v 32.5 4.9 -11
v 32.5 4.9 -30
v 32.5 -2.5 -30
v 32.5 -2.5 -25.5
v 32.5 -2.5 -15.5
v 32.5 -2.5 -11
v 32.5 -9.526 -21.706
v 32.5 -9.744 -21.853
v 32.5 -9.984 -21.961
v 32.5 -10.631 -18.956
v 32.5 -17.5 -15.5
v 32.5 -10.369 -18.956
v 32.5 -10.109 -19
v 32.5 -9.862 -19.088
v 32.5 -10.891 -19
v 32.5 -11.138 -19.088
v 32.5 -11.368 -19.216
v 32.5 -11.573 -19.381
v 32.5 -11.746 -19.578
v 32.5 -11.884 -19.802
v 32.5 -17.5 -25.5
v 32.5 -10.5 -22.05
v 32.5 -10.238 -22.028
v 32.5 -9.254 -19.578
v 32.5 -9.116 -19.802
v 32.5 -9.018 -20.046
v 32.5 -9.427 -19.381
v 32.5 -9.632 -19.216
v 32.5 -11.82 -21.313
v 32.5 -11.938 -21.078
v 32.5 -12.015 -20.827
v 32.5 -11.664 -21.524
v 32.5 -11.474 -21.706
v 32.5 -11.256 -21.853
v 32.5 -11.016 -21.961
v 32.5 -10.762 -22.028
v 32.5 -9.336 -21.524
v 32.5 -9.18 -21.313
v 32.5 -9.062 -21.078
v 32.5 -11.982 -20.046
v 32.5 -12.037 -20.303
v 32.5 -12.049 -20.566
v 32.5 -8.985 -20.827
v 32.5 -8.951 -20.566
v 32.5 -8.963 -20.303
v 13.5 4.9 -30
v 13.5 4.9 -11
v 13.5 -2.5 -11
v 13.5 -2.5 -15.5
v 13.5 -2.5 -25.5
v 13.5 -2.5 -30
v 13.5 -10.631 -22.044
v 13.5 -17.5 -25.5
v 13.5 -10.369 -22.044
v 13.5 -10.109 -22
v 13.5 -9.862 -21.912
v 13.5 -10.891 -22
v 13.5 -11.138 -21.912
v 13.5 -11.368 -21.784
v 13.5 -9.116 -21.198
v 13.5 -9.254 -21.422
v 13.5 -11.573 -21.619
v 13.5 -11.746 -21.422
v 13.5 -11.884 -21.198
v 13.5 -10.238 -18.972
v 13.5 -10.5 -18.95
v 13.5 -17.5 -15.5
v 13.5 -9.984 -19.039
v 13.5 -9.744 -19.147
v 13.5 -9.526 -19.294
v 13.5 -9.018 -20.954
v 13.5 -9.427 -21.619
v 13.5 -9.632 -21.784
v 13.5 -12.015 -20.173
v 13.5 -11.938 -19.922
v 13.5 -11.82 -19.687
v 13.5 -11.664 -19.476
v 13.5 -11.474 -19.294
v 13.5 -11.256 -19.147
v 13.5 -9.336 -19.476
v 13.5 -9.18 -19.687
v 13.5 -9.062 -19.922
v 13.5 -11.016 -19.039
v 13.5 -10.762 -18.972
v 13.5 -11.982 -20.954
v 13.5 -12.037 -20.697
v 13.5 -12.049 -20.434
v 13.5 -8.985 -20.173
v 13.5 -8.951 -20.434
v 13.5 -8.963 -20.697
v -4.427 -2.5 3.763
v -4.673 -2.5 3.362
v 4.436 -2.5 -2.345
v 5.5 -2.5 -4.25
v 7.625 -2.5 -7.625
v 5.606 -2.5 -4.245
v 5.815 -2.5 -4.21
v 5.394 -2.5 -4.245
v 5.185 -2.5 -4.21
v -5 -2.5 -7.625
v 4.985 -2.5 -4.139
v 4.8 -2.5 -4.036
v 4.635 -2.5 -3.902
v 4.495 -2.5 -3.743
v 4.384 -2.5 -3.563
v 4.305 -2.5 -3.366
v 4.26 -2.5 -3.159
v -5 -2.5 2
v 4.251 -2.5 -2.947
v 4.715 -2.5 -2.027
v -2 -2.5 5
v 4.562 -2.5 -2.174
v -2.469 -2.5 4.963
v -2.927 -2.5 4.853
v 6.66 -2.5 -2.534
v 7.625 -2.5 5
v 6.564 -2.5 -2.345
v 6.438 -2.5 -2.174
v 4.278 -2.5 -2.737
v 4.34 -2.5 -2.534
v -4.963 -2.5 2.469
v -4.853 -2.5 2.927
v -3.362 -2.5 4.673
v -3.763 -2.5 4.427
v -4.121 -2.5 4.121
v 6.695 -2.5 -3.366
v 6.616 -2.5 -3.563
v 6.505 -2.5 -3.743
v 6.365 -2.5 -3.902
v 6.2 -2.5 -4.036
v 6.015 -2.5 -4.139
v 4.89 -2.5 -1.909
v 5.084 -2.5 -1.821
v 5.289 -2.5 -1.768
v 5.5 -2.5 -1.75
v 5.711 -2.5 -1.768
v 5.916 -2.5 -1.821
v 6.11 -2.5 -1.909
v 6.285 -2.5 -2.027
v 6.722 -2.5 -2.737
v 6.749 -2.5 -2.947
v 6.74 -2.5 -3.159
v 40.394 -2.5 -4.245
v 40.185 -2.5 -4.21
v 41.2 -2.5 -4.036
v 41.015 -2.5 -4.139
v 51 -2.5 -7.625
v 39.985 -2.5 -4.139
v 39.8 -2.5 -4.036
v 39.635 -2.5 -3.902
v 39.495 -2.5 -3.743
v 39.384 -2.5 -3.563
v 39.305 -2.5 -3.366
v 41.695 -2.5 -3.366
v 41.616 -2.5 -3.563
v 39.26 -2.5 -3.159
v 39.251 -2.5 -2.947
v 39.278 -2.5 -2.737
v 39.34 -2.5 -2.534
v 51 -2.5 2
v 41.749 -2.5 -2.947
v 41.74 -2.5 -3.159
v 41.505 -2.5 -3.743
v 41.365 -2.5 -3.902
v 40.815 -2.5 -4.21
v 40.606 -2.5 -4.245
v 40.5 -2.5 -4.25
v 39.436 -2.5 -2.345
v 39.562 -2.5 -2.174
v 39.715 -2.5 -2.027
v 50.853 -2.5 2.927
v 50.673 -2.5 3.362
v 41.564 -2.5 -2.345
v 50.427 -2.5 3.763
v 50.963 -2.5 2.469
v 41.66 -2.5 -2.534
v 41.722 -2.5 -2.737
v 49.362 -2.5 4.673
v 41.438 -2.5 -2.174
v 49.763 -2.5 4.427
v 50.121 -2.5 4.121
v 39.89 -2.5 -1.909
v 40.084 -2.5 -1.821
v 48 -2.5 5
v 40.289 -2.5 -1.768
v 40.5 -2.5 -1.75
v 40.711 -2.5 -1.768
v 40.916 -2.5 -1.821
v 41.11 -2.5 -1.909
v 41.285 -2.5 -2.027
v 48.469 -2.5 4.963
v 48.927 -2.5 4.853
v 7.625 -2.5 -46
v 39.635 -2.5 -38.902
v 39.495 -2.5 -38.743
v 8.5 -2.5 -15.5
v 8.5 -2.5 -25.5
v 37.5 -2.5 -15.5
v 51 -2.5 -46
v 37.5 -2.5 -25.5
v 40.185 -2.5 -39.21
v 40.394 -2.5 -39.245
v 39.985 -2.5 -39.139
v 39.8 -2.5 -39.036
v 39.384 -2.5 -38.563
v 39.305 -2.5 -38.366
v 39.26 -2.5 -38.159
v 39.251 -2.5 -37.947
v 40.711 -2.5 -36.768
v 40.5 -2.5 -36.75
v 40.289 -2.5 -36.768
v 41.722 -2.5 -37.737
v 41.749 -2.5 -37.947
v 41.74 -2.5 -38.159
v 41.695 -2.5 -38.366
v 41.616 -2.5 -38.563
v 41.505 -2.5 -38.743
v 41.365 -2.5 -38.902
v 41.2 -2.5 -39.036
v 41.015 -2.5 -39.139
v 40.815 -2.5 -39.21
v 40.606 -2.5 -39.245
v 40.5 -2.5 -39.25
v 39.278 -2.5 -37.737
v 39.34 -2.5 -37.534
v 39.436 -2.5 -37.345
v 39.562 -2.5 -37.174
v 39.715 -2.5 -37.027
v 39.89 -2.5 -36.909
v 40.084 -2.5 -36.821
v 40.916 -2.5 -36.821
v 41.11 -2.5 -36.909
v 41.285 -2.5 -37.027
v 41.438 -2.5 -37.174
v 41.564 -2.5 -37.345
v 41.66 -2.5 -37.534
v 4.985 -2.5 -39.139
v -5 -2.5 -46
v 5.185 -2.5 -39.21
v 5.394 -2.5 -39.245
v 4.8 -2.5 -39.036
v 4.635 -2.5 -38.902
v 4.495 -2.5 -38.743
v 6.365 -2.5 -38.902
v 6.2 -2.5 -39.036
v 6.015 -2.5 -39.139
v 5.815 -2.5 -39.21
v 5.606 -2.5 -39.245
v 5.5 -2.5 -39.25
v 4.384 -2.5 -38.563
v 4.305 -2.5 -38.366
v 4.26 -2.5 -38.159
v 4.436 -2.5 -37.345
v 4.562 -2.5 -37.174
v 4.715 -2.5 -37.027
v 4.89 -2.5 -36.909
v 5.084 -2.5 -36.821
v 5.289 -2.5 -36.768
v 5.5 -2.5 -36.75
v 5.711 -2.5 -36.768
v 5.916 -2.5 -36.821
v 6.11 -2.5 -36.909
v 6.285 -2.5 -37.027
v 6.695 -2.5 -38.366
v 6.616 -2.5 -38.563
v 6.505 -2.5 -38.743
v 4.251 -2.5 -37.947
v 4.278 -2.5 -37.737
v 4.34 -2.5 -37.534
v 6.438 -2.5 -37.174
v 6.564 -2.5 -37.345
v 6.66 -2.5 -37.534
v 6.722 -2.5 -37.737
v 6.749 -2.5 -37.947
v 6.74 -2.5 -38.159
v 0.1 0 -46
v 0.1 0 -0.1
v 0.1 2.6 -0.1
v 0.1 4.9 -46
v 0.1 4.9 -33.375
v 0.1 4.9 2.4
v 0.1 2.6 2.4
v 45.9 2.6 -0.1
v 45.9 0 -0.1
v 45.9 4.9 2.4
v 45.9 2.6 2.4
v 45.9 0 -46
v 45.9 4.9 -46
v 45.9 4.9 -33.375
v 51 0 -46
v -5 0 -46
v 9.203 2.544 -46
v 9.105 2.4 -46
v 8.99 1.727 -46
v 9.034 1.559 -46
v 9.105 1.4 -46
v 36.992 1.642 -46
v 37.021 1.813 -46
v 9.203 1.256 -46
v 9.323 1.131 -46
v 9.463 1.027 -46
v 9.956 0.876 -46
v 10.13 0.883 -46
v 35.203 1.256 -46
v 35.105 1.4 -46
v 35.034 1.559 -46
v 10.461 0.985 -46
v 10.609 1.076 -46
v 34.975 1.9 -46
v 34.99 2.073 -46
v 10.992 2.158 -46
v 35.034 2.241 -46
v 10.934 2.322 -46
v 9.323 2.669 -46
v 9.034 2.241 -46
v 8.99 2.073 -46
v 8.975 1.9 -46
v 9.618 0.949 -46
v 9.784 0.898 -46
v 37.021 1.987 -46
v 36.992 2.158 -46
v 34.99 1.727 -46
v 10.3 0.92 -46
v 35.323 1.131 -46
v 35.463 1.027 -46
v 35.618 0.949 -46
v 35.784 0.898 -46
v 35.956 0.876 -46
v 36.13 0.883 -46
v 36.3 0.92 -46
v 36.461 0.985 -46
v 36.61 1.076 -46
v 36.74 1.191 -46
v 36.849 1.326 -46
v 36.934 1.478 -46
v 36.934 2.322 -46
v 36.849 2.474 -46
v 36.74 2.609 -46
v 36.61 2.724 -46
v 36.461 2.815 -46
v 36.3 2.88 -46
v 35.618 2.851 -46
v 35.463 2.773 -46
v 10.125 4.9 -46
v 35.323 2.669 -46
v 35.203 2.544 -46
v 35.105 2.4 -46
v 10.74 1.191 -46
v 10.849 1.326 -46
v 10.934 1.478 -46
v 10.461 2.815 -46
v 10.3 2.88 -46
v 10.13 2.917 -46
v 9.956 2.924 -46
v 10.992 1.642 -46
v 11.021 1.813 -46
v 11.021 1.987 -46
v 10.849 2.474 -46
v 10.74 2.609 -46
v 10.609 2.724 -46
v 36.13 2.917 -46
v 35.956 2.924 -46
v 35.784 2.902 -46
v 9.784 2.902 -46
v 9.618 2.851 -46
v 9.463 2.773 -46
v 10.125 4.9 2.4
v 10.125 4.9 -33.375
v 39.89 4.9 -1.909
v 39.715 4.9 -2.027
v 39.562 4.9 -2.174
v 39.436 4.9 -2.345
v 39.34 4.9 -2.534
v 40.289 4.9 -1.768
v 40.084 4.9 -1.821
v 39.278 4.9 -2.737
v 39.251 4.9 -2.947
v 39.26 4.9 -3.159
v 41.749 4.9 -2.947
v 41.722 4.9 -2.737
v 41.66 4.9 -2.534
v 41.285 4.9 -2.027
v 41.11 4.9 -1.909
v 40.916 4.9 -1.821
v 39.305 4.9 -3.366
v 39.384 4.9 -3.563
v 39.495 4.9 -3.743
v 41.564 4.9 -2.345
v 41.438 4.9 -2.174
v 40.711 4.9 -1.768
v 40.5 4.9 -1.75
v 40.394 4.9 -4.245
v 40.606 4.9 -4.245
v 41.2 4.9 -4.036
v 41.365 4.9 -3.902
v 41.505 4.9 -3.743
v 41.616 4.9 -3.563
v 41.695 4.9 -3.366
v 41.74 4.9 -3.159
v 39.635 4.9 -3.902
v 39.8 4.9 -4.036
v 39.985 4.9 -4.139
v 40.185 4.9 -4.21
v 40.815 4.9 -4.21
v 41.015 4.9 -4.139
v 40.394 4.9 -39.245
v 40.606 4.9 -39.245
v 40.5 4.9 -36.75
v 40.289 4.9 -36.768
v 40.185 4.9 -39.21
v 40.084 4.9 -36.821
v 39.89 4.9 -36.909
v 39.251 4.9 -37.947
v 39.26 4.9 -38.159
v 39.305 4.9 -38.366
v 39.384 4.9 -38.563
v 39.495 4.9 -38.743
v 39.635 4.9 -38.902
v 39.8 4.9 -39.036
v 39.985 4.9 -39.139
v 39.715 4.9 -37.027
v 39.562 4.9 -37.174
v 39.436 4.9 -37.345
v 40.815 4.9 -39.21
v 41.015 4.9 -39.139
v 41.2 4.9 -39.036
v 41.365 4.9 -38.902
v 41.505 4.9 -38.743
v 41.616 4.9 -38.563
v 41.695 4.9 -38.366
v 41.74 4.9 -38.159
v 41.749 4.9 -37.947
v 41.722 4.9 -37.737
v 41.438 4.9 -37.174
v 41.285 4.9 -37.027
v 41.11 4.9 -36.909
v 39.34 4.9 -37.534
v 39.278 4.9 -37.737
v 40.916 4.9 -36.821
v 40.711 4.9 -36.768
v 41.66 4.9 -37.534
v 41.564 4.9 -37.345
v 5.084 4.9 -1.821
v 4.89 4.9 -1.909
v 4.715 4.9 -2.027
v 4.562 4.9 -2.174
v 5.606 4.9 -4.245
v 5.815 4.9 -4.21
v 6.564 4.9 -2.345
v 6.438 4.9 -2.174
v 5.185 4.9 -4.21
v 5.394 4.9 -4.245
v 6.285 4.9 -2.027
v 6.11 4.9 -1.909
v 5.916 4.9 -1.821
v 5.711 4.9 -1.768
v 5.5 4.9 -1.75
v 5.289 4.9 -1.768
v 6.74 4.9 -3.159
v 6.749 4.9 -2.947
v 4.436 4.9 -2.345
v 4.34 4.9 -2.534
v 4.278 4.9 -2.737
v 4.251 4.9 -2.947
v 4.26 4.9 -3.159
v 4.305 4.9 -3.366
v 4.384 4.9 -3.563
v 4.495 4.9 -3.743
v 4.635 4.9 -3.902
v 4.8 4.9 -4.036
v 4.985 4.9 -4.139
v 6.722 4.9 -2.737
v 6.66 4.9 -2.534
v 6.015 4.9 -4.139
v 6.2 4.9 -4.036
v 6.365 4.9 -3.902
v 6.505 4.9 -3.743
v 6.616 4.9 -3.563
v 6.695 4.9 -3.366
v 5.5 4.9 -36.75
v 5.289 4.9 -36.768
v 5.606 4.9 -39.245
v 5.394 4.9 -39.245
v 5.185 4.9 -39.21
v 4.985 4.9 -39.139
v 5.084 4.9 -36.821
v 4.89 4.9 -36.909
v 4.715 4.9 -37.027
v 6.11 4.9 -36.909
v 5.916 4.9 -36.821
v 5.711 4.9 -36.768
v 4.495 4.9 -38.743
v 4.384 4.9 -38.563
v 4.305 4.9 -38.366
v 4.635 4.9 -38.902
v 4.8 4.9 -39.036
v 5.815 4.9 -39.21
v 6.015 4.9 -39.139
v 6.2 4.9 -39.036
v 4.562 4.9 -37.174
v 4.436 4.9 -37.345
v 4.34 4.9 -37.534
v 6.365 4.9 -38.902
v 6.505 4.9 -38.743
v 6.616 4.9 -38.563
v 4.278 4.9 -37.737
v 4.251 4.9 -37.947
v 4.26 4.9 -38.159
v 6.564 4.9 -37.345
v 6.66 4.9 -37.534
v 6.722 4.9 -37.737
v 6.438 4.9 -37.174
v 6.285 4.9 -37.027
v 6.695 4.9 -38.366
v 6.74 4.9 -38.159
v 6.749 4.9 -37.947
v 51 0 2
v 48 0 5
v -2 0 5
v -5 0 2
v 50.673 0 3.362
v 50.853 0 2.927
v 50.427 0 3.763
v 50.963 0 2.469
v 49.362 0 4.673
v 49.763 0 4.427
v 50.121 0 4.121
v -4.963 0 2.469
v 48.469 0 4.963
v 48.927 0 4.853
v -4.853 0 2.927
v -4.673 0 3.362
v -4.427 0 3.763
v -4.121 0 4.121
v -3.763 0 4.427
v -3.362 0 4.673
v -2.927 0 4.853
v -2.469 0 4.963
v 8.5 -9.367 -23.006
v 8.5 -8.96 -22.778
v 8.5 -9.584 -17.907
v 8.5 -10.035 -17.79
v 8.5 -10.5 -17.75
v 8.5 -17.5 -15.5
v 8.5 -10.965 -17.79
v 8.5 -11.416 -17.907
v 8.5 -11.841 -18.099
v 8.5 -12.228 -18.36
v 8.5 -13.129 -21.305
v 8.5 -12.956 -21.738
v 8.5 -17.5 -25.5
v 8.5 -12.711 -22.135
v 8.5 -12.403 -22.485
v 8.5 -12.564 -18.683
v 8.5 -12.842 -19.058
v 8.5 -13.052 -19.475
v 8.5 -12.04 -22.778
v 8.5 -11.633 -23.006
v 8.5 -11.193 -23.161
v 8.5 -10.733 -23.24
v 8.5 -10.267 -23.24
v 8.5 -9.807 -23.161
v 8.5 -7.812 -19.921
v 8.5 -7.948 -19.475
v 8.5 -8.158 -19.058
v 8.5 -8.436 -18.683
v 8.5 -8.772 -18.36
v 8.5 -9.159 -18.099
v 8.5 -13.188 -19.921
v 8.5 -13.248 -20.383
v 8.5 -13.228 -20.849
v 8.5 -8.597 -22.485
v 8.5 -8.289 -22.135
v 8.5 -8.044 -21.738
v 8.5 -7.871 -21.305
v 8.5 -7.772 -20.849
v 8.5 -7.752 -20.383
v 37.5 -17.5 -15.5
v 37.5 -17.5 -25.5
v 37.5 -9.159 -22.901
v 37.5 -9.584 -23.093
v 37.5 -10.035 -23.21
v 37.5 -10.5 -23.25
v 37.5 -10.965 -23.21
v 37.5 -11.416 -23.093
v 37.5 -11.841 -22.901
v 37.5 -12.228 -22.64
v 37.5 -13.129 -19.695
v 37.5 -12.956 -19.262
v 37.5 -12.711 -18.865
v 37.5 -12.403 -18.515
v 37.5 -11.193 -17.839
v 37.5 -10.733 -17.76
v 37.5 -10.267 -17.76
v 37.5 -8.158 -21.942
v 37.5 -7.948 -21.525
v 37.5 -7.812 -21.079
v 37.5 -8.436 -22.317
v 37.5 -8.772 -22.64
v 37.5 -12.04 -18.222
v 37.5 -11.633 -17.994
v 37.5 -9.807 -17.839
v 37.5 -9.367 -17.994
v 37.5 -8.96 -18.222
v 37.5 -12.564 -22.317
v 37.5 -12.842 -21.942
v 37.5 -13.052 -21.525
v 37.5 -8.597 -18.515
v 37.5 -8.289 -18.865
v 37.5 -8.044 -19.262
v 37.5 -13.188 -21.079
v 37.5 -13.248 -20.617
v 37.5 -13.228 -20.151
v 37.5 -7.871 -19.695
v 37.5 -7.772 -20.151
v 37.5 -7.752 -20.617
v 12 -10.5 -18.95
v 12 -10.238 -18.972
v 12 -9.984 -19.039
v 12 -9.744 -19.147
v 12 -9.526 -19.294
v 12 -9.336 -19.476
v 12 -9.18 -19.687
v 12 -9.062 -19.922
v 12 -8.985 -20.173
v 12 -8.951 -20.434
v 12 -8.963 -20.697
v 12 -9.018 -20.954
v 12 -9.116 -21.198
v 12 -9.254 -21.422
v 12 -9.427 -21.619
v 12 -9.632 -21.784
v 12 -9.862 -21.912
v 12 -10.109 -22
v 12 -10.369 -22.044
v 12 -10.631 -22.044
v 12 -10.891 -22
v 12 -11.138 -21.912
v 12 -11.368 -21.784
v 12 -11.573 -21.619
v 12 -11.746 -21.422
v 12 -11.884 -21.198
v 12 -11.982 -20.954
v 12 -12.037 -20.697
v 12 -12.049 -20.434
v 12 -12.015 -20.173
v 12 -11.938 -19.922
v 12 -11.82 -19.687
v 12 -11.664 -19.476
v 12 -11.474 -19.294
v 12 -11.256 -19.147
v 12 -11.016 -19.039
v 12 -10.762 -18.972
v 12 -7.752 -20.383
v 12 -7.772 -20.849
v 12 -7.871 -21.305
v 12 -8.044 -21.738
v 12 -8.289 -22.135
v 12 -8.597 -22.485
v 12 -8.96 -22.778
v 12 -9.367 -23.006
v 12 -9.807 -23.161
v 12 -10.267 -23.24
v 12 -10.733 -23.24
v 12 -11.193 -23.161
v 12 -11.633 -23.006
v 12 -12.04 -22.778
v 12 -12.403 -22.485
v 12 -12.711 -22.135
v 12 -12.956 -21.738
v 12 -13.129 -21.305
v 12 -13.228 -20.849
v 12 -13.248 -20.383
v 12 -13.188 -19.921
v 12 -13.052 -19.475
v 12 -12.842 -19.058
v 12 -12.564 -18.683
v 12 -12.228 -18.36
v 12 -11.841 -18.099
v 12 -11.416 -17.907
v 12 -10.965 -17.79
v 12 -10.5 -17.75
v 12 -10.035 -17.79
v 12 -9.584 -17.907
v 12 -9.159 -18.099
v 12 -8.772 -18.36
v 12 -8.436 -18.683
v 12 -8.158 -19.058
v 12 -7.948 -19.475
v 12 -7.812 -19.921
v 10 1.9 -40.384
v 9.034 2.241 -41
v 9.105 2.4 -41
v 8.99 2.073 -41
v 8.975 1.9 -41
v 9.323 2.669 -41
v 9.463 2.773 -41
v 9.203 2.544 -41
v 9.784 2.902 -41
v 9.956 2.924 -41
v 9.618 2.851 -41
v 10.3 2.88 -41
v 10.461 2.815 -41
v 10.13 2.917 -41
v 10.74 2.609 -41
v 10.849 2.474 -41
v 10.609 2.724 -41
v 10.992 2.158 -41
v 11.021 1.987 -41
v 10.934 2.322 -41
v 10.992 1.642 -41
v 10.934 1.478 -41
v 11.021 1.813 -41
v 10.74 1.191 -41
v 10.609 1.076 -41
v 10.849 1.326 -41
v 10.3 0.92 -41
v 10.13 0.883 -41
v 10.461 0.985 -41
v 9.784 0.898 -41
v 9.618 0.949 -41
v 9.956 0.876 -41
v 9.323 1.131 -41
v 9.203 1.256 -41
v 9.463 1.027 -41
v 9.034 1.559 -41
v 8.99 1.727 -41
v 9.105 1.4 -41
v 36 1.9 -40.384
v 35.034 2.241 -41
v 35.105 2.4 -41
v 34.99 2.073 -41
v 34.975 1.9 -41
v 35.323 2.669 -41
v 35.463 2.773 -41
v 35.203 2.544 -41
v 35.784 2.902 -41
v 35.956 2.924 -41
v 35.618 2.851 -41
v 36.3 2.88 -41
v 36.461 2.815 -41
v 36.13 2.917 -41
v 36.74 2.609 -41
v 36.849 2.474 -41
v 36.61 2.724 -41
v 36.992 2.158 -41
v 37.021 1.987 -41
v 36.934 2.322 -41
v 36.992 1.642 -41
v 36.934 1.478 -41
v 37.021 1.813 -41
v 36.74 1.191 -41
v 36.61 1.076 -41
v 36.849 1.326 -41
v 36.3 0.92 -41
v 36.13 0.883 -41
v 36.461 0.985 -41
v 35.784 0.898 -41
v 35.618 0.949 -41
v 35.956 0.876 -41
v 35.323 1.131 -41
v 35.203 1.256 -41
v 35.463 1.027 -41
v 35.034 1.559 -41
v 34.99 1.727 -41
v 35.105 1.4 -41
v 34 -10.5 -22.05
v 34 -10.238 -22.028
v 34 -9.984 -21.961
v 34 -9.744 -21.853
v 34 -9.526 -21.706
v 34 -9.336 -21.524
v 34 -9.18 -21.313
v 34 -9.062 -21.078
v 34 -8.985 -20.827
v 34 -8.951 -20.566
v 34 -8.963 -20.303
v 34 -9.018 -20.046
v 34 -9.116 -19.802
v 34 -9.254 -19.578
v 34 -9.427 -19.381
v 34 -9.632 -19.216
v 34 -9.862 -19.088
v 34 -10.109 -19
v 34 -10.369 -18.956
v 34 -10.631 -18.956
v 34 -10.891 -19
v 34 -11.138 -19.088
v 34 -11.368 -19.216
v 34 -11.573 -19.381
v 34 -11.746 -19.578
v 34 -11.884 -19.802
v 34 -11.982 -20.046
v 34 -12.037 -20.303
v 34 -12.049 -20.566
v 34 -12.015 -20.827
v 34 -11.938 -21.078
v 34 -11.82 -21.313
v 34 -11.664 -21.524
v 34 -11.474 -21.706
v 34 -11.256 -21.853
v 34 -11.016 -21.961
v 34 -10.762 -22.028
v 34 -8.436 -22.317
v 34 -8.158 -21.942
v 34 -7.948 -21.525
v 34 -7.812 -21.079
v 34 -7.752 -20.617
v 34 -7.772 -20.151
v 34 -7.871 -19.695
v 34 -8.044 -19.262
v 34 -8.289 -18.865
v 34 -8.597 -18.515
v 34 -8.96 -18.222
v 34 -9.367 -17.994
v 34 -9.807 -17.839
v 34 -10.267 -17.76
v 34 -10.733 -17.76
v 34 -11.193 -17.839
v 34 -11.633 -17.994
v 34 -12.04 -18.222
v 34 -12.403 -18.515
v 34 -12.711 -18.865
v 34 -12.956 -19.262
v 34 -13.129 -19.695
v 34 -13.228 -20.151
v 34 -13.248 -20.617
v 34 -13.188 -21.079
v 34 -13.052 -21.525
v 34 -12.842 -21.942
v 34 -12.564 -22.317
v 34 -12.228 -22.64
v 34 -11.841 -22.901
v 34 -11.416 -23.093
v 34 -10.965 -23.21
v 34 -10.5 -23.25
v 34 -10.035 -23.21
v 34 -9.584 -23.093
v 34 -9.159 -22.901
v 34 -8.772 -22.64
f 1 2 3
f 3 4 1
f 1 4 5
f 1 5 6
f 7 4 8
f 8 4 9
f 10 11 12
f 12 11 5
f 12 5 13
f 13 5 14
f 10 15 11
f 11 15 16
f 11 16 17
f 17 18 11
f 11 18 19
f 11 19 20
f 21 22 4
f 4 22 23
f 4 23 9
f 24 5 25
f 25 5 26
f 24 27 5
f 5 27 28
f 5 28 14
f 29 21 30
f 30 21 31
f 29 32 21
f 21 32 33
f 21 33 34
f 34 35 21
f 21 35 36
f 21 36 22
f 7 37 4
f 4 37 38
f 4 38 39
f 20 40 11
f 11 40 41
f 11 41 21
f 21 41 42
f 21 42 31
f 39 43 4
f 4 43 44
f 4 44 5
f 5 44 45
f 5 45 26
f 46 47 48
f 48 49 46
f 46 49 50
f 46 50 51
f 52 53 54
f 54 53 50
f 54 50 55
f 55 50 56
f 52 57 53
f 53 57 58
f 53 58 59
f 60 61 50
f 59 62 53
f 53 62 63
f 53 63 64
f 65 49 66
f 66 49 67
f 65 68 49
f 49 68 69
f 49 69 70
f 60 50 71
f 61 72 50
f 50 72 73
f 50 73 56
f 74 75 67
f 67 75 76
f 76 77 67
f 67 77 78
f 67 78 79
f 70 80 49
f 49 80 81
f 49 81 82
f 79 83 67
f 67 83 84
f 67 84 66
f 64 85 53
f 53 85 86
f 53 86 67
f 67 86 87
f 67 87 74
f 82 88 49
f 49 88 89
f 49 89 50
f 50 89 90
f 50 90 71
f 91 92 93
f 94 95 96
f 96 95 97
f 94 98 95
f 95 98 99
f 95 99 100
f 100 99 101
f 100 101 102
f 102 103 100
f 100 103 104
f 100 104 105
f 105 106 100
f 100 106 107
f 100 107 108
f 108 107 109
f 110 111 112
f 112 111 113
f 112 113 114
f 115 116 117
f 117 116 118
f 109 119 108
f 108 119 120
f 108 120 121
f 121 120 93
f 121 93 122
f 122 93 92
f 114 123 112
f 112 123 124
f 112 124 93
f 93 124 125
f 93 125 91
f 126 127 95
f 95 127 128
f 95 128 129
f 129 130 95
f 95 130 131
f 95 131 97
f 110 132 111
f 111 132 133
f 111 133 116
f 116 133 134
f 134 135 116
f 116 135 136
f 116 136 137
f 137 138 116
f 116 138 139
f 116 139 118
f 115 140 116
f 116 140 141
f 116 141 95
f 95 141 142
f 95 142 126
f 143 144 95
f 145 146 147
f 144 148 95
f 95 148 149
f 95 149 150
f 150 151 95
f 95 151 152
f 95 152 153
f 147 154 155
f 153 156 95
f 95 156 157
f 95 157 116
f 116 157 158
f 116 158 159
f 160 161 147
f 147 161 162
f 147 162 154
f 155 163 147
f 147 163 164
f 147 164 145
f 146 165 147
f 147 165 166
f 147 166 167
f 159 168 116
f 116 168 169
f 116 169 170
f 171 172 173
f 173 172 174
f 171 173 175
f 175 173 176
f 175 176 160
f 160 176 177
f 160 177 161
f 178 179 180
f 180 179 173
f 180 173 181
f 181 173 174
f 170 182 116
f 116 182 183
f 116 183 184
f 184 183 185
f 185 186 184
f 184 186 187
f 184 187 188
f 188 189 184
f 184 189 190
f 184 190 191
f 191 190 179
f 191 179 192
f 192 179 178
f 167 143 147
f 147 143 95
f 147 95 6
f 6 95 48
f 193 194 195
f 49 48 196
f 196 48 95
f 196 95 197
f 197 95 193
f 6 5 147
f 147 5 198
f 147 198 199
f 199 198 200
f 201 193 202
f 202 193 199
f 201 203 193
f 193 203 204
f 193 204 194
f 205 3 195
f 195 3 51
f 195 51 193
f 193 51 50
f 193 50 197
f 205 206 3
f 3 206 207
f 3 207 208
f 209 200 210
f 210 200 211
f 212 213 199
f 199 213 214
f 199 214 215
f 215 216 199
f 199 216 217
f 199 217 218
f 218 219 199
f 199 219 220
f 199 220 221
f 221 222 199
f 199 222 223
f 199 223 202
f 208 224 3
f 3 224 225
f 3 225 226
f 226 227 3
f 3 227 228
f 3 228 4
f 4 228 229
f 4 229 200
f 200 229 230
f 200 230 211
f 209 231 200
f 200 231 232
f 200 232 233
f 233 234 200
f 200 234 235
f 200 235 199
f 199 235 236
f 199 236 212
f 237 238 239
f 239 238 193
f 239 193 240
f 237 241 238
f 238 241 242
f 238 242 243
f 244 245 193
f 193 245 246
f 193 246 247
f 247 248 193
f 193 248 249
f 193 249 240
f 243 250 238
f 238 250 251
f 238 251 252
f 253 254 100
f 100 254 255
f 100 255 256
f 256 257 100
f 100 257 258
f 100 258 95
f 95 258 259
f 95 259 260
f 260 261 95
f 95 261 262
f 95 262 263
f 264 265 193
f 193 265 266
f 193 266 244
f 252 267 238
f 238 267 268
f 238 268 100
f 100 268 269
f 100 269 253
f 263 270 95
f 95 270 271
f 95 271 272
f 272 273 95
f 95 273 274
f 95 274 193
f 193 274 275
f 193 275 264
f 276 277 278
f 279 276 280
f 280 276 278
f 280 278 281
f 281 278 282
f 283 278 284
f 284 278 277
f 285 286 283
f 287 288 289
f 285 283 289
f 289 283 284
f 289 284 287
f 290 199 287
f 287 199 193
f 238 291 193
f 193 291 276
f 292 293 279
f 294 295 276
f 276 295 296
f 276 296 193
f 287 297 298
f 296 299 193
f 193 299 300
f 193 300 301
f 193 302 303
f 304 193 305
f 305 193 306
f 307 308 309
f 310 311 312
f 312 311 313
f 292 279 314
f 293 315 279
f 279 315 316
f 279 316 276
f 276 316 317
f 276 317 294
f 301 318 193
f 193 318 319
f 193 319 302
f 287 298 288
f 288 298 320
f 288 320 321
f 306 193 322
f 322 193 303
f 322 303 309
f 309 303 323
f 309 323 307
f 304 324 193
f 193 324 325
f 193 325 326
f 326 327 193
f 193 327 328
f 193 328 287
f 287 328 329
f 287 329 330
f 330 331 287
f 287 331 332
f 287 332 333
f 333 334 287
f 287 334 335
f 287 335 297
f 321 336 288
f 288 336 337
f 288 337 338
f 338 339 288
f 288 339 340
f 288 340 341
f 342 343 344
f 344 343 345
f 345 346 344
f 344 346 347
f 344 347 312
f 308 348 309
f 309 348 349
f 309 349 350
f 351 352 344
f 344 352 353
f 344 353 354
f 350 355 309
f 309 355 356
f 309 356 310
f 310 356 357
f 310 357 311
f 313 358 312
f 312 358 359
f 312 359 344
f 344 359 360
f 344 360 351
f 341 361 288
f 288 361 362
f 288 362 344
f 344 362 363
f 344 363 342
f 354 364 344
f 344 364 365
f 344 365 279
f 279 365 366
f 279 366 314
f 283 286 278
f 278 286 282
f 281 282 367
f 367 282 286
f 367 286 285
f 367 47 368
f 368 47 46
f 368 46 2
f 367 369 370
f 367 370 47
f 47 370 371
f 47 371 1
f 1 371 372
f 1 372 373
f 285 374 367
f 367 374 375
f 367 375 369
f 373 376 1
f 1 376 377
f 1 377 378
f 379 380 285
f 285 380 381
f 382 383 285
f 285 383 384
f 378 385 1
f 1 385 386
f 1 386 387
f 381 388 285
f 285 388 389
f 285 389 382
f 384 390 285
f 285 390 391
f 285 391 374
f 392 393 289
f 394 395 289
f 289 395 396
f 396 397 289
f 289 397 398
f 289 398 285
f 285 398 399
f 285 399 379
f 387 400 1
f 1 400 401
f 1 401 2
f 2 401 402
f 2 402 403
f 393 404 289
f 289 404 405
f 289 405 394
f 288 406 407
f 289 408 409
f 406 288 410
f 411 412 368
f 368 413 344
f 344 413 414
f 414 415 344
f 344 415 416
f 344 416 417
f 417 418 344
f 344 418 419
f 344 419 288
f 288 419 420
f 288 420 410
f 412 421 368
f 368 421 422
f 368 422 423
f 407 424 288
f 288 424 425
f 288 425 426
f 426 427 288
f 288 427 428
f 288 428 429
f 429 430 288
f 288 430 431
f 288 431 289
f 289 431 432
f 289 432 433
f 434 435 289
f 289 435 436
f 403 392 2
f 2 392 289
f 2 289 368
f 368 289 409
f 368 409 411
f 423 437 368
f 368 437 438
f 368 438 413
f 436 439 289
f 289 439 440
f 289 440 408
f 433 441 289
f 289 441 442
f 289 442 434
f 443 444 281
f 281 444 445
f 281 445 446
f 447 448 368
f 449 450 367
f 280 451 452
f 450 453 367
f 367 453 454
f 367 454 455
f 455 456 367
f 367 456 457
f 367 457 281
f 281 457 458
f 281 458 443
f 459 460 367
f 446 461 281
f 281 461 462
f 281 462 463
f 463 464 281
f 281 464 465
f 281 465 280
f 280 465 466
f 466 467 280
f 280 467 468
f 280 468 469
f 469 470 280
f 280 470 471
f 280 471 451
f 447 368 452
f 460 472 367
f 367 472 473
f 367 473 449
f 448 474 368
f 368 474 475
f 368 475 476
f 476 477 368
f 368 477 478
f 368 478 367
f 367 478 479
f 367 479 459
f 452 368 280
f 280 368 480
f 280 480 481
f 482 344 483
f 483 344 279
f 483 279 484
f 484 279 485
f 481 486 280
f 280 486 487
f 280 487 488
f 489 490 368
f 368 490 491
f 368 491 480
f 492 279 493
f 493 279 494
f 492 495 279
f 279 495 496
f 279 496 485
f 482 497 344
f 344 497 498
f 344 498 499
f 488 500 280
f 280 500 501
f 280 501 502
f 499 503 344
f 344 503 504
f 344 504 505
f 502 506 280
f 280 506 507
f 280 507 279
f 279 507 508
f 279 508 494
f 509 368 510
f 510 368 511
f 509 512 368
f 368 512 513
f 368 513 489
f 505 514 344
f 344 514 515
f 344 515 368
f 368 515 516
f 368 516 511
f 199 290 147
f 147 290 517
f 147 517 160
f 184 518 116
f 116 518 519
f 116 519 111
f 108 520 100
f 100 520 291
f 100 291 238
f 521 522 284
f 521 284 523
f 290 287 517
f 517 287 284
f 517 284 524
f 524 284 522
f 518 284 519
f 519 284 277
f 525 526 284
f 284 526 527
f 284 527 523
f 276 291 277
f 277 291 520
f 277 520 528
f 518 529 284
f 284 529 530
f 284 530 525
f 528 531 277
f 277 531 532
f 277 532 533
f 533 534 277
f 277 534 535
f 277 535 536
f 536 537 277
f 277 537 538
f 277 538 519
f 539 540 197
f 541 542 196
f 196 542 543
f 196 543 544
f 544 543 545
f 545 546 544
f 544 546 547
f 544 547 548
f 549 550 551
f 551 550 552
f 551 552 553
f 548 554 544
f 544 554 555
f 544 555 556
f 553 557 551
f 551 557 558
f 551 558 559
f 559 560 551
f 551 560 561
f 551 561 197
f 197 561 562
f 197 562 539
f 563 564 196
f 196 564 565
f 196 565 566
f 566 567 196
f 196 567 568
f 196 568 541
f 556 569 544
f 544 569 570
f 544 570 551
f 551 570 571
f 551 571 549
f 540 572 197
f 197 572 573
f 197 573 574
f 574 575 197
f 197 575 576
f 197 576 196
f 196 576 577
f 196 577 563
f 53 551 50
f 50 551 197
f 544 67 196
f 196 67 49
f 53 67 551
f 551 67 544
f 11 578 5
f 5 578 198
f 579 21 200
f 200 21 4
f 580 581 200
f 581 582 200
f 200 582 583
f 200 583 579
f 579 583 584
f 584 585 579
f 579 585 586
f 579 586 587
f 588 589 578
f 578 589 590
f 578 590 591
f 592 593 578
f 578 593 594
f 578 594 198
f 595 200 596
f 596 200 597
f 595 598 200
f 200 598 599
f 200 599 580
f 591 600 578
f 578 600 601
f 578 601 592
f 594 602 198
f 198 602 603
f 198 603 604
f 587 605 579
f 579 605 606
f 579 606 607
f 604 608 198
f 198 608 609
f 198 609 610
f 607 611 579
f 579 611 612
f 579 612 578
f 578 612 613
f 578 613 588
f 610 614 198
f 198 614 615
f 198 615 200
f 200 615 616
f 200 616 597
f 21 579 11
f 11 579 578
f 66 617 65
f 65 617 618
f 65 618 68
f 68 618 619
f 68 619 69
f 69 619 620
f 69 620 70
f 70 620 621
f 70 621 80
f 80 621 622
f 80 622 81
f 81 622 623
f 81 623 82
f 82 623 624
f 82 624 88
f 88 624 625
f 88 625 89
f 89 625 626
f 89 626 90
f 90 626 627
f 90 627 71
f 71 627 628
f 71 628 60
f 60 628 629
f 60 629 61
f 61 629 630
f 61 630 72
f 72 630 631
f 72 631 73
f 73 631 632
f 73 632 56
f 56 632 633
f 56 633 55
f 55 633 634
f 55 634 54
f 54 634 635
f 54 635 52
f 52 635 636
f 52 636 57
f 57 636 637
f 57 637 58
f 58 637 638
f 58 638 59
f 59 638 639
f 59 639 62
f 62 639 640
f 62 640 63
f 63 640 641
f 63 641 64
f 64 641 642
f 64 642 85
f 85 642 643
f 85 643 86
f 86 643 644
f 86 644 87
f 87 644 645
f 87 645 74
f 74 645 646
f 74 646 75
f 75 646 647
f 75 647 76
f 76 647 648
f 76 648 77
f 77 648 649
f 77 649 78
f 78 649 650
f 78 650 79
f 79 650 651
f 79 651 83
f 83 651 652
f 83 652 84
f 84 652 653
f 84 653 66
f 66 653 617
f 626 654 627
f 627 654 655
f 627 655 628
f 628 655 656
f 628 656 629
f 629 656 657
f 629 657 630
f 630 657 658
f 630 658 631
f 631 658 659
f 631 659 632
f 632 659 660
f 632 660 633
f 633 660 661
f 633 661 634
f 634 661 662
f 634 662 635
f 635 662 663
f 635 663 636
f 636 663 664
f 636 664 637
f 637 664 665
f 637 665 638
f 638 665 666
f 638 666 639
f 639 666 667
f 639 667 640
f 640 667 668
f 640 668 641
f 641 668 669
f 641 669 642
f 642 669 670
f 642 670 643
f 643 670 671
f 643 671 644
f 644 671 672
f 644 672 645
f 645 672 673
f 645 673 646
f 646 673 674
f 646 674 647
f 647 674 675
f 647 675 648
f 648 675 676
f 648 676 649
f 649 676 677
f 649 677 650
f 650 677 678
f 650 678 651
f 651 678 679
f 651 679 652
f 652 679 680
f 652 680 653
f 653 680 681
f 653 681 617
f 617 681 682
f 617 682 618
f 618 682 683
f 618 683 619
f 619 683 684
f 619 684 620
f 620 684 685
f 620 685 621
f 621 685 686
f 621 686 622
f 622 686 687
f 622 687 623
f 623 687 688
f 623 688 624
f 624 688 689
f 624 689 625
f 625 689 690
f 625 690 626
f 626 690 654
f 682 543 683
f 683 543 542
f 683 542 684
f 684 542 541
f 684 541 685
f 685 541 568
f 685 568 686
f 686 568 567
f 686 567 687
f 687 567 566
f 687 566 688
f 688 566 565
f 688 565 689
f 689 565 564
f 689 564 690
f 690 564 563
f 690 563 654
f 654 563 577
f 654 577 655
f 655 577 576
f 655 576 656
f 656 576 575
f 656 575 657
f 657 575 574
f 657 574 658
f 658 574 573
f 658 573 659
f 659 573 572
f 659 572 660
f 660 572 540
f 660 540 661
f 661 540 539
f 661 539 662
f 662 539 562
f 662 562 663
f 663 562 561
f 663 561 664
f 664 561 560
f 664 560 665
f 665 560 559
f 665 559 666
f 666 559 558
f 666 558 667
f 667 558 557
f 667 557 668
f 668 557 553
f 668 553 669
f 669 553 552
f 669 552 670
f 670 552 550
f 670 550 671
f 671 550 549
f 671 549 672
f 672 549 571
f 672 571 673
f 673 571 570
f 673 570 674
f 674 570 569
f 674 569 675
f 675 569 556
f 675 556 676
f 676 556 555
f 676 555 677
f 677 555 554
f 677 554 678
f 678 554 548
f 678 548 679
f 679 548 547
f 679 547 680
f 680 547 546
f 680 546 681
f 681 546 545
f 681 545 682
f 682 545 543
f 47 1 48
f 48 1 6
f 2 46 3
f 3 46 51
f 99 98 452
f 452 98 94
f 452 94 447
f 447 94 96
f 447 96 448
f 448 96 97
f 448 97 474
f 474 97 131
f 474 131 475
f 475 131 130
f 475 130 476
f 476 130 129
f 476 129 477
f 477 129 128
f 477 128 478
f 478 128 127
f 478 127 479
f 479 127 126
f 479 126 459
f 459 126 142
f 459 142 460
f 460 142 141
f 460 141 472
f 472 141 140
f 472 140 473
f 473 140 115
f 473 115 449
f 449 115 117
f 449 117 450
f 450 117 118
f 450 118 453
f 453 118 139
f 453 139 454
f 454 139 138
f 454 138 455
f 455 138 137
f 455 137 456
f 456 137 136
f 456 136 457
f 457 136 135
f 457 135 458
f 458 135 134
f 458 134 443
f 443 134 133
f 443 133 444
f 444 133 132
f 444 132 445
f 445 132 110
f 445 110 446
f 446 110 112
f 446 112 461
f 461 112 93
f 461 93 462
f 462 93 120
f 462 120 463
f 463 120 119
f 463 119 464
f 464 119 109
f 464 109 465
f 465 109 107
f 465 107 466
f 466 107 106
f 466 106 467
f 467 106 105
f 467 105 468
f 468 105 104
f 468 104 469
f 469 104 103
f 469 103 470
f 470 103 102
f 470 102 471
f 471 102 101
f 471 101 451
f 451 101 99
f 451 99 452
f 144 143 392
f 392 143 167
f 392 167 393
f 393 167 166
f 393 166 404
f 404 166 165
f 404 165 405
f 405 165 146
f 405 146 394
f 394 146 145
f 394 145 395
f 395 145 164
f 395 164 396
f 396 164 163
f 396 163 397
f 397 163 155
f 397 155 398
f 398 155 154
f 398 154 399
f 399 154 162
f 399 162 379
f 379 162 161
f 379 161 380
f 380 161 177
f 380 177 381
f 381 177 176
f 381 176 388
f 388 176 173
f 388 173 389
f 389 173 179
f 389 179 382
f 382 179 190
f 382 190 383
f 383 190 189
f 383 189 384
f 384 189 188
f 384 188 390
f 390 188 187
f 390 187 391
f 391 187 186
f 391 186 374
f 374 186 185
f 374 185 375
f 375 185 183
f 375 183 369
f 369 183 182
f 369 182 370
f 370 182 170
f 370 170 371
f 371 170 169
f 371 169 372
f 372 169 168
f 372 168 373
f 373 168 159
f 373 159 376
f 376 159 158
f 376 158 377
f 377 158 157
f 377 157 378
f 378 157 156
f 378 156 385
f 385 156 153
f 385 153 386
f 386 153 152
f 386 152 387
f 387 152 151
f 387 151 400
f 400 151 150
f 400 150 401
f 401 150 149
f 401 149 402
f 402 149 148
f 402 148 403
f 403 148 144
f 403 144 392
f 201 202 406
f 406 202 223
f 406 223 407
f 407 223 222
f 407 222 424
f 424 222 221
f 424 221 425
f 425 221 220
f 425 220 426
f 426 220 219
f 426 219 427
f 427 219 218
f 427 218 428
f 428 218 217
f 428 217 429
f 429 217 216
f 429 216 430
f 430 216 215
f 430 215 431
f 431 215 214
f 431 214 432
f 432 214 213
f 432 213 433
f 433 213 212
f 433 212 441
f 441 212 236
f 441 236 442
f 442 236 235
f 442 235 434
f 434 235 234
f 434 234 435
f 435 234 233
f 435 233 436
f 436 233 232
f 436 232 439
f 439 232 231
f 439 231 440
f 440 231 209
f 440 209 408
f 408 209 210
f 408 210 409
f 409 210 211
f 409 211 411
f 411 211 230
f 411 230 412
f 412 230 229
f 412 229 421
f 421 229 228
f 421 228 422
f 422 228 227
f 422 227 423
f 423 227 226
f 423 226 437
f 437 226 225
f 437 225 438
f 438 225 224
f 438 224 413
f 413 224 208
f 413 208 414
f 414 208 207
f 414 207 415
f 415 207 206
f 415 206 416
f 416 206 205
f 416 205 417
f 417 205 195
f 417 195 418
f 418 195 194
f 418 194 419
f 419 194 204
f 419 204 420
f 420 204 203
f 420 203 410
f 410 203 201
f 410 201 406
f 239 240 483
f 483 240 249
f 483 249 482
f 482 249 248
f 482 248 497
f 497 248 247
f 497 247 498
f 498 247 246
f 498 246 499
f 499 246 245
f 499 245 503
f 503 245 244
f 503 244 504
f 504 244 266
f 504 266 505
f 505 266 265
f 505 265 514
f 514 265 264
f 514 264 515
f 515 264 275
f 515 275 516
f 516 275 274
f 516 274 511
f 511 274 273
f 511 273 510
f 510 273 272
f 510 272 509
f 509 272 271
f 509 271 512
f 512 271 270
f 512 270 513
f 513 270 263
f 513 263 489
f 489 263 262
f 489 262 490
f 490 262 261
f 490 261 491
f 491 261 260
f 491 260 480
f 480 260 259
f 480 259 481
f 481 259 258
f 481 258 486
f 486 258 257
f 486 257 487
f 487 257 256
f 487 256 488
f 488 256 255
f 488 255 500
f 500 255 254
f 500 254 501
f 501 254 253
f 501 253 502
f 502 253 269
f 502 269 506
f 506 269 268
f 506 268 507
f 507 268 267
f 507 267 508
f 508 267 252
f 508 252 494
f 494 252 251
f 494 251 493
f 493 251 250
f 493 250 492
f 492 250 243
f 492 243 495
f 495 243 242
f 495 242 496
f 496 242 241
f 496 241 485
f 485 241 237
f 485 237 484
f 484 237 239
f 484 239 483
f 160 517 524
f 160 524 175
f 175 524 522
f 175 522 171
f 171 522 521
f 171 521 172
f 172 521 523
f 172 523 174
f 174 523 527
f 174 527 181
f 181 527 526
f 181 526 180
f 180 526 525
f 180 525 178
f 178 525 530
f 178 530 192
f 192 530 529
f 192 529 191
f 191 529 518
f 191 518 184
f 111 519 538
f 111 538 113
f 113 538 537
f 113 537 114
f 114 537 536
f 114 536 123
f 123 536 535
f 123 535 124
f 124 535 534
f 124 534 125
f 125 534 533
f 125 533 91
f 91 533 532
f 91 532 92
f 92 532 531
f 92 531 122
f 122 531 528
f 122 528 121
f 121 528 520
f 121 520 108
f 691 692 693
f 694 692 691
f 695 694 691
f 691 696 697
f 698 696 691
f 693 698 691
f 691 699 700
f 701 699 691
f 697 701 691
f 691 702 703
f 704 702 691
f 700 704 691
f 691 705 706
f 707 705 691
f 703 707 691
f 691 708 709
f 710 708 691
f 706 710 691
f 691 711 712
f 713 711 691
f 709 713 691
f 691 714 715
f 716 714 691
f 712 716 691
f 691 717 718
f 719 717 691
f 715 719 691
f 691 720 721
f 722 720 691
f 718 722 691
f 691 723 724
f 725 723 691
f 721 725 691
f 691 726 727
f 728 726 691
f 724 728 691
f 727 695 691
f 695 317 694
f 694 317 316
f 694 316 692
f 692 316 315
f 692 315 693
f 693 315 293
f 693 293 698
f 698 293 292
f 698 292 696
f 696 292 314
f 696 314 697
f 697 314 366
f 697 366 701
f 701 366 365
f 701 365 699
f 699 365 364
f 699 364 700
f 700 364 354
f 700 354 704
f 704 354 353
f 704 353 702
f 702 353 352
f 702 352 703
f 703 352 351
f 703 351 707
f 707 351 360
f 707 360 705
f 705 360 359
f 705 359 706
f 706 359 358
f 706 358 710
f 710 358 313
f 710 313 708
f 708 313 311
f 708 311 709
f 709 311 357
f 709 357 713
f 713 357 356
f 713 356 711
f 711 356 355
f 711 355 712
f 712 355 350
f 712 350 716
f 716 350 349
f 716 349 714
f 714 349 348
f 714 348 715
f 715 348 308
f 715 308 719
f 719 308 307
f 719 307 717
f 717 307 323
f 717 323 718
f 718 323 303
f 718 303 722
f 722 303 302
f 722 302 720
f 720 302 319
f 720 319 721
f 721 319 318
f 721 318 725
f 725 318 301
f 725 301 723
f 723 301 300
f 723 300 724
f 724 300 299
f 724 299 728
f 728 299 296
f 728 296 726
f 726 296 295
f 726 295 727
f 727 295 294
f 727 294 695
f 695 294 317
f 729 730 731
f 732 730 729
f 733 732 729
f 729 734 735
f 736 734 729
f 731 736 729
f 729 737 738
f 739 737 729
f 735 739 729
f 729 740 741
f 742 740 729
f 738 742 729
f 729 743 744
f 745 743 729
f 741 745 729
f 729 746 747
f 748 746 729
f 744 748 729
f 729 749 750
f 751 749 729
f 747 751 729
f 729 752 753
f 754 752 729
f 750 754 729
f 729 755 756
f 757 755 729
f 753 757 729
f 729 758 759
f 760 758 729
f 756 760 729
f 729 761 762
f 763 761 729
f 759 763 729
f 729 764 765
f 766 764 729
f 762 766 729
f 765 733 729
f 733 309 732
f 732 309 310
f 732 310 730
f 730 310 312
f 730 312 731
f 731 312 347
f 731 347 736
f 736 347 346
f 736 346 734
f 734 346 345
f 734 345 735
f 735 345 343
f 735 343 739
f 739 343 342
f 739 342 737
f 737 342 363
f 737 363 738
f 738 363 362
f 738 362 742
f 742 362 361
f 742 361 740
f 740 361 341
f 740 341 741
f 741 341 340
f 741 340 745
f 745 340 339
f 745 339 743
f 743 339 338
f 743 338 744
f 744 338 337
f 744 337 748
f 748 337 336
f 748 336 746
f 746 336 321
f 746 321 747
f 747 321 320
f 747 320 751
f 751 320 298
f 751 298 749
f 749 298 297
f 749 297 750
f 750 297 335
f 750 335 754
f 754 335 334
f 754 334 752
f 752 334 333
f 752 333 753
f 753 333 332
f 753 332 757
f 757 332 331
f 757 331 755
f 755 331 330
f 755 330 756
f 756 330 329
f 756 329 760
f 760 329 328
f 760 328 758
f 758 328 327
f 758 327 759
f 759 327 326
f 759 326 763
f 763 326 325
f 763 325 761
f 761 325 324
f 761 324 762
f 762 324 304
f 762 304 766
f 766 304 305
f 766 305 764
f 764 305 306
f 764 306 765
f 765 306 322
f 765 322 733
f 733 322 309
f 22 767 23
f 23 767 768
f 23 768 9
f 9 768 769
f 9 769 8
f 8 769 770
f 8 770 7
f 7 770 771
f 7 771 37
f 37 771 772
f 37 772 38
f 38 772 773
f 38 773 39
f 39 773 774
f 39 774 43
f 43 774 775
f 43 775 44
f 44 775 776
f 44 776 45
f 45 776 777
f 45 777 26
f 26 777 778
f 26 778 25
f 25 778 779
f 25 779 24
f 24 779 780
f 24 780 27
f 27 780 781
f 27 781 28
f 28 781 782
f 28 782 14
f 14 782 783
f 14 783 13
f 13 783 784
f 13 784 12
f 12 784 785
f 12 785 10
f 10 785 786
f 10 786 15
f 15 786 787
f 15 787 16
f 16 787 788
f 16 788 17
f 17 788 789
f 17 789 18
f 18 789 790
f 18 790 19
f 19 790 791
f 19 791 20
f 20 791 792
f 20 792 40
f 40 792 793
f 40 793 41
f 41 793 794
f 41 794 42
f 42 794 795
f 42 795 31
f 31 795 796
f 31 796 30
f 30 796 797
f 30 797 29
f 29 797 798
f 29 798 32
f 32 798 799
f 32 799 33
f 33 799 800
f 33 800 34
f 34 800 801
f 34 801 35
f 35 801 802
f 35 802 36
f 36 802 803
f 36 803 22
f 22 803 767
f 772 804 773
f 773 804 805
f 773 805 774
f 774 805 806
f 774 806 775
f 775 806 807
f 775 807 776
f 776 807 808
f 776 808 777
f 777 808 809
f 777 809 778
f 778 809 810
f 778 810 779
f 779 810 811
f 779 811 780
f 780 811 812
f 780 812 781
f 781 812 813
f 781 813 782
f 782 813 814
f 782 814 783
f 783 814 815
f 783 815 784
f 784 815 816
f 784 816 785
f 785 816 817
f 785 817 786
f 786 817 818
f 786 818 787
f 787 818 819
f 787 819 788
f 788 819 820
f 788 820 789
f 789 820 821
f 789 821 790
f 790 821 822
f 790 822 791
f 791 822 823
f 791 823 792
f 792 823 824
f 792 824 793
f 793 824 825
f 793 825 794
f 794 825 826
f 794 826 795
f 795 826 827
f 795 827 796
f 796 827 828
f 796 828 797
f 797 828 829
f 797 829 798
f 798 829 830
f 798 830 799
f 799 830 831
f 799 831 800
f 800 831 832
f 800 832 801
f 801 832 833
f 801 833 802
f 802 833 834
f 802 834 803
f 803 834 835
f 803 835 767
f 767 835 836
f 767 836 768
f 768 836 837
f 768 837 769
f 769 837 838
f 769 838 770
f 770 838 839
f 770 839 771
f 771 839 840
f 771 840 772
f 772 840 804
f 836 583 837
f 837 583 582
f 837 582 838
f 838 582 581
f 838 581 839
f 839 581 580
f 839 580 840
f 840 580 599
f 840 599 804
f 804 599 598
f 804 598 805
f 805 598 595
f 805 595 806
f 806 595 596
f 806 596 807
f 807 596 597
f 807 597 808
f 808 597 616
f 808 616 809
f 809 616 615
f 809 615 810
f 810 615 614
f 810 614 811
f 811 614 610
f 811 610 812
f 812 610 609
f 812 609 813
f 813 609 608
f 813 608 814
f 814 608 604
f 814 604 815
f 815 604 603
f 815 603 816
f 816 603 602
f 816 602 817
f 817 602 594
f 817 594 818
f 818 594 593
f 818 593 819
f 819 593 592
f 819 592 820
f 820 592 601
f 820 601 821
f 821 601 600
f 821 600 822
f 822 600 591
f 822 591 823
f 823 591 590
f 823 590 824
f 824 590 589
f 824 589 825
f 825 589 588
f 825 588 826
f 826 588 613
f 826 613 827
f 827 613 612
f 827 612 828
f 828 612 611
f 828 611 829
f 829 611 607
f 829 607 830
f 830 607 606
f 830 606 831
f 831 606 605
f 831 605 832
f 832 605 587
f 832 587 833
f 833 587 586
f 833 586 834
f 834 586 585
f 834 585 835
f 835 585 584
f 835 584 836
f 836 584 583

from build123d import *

# Parameters (mm, degrees)
SKETCH1_W                        = 46
SKETCH1_H                        = 46
BOSS_EXTRUDE1_DEPTH              = 2.5
SKETCH2_W                        = 46
SKETCH2_H                        = 48.5
BOSS_EXTRUDE2_DEPTH              = 2.5
SKETCH3_W                        = 56
SKETCH3_H                        = 51
BOSS_EXTRUDE3_DEPTH              = 2.5
SKETCH7_W                        = 5
SKETCH7_H                        = 10
BOSS_EXTRUDE6_DEPTH              = 15
CBORE_FOR_M2_5_SHCS1_D           = 3.1
CBORE_FOR_M2_5_SHCS1_DEPTH       = 5
CBORE_FOR_M2_5_SHCS1_CBORE_D     = 5.5
CBORE_FOR_M2_5_SHCS1_CBORE_DEPTH = 3.5
CBORE_FOR_M2_5_SHCS1_TIP         = 0.931333959
SKETCH11_W                       = 19
SKETCH11_H                       = 19
CUT_EXTRUDE2_DEPTH               = 71.299359883
M3X0_5_TAPPED_HOLE1_D            = 2.5
FILLET1_R                        = 3
MOVE_FACE1_BY                    = 0.1
MOVE_FACE1_2_BY                  = 0.1
MOVE_FACE1_3_BY                  = 0.1
MOVE_FACE1_4_BY                  = 0.1
MOVE_FACE2_BY                    = 0.1
MOVE_FACE2_2_BY                  = 0.1
M2_5X0_45_TAPPED_HOLE1_D         = 2.05
M2_5X0_45_TAPPED_HOLE1_DEPTH     = 5
M2_5X0_45_TAPPED_HOLE1_TIP       = 0.615882135
CBORE_FOR_M2_5_SHCS2_D           = 3.1
CBORE_FOR_M2_5_SHCS2_DEPTH       = 5
CBORE_FOR_M2_5_SHCS2_CBORE_D     = 5.5
CBORE_FOR_M2_5_SHCS2_CBORE_DEPTH = 3.5
CBORE_FOR_M2_5_SHCS2_TIP         = 0.931333959


with BuildPart() as part:
    # Sketch1 → Boss-Extrude1 (new body)
    with BuildSketch(Plane(origin=(0, 0, 0), x_dir=(1, 0, 0), z_dir=(0, 1, 0))):
        with Locations((23, 23)):
            Rectangle(SKETCH1_W, SKETCH1_H)
    extrude(amount=BOSS_EXTRUDE1_DEPTH)

    # Sketch2 → Boss-Extrude2 (add)
    with BuildSketch(Plane(origin=(0, 2.5, 0), x_dir=(1, 0, 0), z_dir=(0, 1, 0))):
        with Locations((23, 21.75)):
            Rectangle(SKETCH2_W, SKETCH2_H)
    extrude(amount=BOSS_EXTRUDE2_DEPTH)

    # Sketch3 → Boss-Extrude3 (add)
    with BuildSketch(Plane.XZ):
        with Locations((23, -20.5)):
            Rectangle(SKETCH3_W, SKETCH3_H)
    extrude(amount=BOSS_EXTRUDE3_DEPTH)

    # Sketch7 → Boss-Extrude6 (add)
    with BuildSketch(Plane.XZ.offset(2.5)):
        with Locations((11, -20.5)):
            Rectangle(SKETCH7_W, SKETCH7_H)
        with Locations((35, -20.5)):
            Rectangle(SKETCH7_W, SKETCH7_H)
    extrude(amount=BOSS_EXTRUDE6_DEPTH)

    # CBORE for M2.5 SHCS1
    with Locations(Plane.ZY.offset(-8.5)):
        with Locations((-20.5, -10.5)):
            CounterBoreHole(CBORE_FOR_M2_5_SHCS1_D / 2, CBORE_FOR_M2_5_SHCS1_CBORE_D / 2, CBORE_FOR_M2_5_SHCS1_CBORE_DEPTH, depth=CBORE_FOR_M2_5_SHCS1_DEPTH)
            with Locations((0, 0, -(CBORE_FOR_M2_5_SHCS1_DEPTH + CBORE_FOR_M2_5_SHCS1_TIP / 2))):  # 118° drill point
                Cone(0, CBORE_FOR_M2_5_SHCS1_D / 2, CBORE_FOR_M2_5_SHCS1_TIP, mode=Mode.SUBTRACT)

    # Sketch11 → Cut-Extrude2 (cut, through all)
    with BuildSketch(Plane.XZ.offset(2.5)):
        with Locations((23, -20.5)):
            Rectangle(SKETCH11_W, SKETCH11_H)
    extrude(amount=-CUT_EXTRUDE2_DEPTH, mode=Mode.SUBTRACT)

    # M3x0.5 Tapped Hole1 (through all)
    with Locations(Plane(origin=(0, 5, 0), x_dir=(1, 0, 0), z_dir=(0, 1, 0))):
        with Locations((5.5, 38), (40.5, 38), (40.5, 3), (5.5, 3)):
            Hole(M3X0_5_TAPPED_HOLE1_D / 2)

    # Fillet1
    fillet1_edges = [part.edges().sort_by_distance(p)[0] for p in [
        (51, -1.25, 5),
        (-5, -1.25, 5),
    ]]
    fillet(fillet1_edges, radius=FILLET1_R)

    # Move Face1: a face moved inward by 0.1
    extrude(part.faces().sort_by_distance((23, 5, -9.625))[0], amount=MOVE_FACE1_BY, dir=(0, -1, 0), mode=Mode.SUBTRACT)

    # Move Face1 2: a face moved inward by 0.1
    extrude(part.faces().sort_by_distance((23, 2.5, 1.25))[0], amount=MOVE_FACE1_2_BY, dir=(0, 1, 0), mode=Mode.SUBTRACT)

    # Move Face1 3: a face moved inward by 0.1
    extrude(part.faces().sort_by_distance((23, 3.75, 2.5))[0], amount=MOVE_FACE1_3_BY, dir=(0, 0, -1), mode=Mode.SUBTRACT)

    # Move Face1 4: a face moved inward by 0.1
    extrude(part.faces().sort_by_distance((23, 1.25, 0))[0], amount=MOVE_FACE1_4_BY, dir=(0, 0, -1), mode=Mode.SUBTRACT)

    # Move Face2: a face moved inward by 0.1
    extrude(part.faces().sort_by_distance((0, 2.482407006, -22.446731119))[0], amount=MOVE_FACE2_BY, dir=(1, 0, 0), mode=Mode.SUBTRACT)

    # Move Face2 2: a face moved inward by 0.1
    extrude(part.faces().sort_by_distance((46, 2.482407006, -22.446731119))[0], amount=MOVE_FACE2_2_BY, dir=(-1, 0, 0), mode=Mode.SUBTRACT)

    # M2.5x0.45 Tapped Hole1
    with Locations(Plane(origin=(0, 0, -46), x_dir=(-1, 0, 0), z_dir=(0, 0, -1))):
        with Locations((-36, 1.9), (-10, 1.9)):
            Hole(M2_5X0_45_TAPPED_HOLE1_D / 2, depth=M2_5X0_45_TAPPED_HOLE1_DEPTH)
            with Locations((0, 0, -(M2_5X0_45_TAPPED_HOLE1_DEPTH + M2_5X0_45_TAPPED_HOLE1_TIP / 2))):  # 118° drill point
                Cone(0, M2_5X0_45_TAPPED_HOLE1_D / 2, M2_5X0_45_TAPPED_HOLE1_TIP, mode=Mode.SUBTRACT)

    # CBORE for M2.5 SHCS2
    with Locations(Plane(origin=(37.5, 0, 0), x_dir=(0, 0, -1), z_dir=(1, 0, 0))):
        with Locations((20.5, -10.5)):
            CounterBoreHole(CBORE_FOR_M2_5_SHCS2_D / 2, CBORE_FOR_M2_5_SHCS2_CBORE_D / 2, CBORE_FOR_M2_5_SHCS2_CBORE_DEPTH, depth=CBORE_FOR_M2_5_SHCS2_DEPTH)
            with Locations((0, 0, -(CBORE_FOR_M2_5_SHCS2_DEPTH + CBORE_FOR_M2_5_SHCS2_TIP / 2))):  # 118° drill point
                Cone(0, CBORE_FOR_M2_5_SHCS2_D / 2, CBORE_FOR_M2_5_SHCS2_TIP, mode=Mode.SUBTRACT)


solid = part.part
